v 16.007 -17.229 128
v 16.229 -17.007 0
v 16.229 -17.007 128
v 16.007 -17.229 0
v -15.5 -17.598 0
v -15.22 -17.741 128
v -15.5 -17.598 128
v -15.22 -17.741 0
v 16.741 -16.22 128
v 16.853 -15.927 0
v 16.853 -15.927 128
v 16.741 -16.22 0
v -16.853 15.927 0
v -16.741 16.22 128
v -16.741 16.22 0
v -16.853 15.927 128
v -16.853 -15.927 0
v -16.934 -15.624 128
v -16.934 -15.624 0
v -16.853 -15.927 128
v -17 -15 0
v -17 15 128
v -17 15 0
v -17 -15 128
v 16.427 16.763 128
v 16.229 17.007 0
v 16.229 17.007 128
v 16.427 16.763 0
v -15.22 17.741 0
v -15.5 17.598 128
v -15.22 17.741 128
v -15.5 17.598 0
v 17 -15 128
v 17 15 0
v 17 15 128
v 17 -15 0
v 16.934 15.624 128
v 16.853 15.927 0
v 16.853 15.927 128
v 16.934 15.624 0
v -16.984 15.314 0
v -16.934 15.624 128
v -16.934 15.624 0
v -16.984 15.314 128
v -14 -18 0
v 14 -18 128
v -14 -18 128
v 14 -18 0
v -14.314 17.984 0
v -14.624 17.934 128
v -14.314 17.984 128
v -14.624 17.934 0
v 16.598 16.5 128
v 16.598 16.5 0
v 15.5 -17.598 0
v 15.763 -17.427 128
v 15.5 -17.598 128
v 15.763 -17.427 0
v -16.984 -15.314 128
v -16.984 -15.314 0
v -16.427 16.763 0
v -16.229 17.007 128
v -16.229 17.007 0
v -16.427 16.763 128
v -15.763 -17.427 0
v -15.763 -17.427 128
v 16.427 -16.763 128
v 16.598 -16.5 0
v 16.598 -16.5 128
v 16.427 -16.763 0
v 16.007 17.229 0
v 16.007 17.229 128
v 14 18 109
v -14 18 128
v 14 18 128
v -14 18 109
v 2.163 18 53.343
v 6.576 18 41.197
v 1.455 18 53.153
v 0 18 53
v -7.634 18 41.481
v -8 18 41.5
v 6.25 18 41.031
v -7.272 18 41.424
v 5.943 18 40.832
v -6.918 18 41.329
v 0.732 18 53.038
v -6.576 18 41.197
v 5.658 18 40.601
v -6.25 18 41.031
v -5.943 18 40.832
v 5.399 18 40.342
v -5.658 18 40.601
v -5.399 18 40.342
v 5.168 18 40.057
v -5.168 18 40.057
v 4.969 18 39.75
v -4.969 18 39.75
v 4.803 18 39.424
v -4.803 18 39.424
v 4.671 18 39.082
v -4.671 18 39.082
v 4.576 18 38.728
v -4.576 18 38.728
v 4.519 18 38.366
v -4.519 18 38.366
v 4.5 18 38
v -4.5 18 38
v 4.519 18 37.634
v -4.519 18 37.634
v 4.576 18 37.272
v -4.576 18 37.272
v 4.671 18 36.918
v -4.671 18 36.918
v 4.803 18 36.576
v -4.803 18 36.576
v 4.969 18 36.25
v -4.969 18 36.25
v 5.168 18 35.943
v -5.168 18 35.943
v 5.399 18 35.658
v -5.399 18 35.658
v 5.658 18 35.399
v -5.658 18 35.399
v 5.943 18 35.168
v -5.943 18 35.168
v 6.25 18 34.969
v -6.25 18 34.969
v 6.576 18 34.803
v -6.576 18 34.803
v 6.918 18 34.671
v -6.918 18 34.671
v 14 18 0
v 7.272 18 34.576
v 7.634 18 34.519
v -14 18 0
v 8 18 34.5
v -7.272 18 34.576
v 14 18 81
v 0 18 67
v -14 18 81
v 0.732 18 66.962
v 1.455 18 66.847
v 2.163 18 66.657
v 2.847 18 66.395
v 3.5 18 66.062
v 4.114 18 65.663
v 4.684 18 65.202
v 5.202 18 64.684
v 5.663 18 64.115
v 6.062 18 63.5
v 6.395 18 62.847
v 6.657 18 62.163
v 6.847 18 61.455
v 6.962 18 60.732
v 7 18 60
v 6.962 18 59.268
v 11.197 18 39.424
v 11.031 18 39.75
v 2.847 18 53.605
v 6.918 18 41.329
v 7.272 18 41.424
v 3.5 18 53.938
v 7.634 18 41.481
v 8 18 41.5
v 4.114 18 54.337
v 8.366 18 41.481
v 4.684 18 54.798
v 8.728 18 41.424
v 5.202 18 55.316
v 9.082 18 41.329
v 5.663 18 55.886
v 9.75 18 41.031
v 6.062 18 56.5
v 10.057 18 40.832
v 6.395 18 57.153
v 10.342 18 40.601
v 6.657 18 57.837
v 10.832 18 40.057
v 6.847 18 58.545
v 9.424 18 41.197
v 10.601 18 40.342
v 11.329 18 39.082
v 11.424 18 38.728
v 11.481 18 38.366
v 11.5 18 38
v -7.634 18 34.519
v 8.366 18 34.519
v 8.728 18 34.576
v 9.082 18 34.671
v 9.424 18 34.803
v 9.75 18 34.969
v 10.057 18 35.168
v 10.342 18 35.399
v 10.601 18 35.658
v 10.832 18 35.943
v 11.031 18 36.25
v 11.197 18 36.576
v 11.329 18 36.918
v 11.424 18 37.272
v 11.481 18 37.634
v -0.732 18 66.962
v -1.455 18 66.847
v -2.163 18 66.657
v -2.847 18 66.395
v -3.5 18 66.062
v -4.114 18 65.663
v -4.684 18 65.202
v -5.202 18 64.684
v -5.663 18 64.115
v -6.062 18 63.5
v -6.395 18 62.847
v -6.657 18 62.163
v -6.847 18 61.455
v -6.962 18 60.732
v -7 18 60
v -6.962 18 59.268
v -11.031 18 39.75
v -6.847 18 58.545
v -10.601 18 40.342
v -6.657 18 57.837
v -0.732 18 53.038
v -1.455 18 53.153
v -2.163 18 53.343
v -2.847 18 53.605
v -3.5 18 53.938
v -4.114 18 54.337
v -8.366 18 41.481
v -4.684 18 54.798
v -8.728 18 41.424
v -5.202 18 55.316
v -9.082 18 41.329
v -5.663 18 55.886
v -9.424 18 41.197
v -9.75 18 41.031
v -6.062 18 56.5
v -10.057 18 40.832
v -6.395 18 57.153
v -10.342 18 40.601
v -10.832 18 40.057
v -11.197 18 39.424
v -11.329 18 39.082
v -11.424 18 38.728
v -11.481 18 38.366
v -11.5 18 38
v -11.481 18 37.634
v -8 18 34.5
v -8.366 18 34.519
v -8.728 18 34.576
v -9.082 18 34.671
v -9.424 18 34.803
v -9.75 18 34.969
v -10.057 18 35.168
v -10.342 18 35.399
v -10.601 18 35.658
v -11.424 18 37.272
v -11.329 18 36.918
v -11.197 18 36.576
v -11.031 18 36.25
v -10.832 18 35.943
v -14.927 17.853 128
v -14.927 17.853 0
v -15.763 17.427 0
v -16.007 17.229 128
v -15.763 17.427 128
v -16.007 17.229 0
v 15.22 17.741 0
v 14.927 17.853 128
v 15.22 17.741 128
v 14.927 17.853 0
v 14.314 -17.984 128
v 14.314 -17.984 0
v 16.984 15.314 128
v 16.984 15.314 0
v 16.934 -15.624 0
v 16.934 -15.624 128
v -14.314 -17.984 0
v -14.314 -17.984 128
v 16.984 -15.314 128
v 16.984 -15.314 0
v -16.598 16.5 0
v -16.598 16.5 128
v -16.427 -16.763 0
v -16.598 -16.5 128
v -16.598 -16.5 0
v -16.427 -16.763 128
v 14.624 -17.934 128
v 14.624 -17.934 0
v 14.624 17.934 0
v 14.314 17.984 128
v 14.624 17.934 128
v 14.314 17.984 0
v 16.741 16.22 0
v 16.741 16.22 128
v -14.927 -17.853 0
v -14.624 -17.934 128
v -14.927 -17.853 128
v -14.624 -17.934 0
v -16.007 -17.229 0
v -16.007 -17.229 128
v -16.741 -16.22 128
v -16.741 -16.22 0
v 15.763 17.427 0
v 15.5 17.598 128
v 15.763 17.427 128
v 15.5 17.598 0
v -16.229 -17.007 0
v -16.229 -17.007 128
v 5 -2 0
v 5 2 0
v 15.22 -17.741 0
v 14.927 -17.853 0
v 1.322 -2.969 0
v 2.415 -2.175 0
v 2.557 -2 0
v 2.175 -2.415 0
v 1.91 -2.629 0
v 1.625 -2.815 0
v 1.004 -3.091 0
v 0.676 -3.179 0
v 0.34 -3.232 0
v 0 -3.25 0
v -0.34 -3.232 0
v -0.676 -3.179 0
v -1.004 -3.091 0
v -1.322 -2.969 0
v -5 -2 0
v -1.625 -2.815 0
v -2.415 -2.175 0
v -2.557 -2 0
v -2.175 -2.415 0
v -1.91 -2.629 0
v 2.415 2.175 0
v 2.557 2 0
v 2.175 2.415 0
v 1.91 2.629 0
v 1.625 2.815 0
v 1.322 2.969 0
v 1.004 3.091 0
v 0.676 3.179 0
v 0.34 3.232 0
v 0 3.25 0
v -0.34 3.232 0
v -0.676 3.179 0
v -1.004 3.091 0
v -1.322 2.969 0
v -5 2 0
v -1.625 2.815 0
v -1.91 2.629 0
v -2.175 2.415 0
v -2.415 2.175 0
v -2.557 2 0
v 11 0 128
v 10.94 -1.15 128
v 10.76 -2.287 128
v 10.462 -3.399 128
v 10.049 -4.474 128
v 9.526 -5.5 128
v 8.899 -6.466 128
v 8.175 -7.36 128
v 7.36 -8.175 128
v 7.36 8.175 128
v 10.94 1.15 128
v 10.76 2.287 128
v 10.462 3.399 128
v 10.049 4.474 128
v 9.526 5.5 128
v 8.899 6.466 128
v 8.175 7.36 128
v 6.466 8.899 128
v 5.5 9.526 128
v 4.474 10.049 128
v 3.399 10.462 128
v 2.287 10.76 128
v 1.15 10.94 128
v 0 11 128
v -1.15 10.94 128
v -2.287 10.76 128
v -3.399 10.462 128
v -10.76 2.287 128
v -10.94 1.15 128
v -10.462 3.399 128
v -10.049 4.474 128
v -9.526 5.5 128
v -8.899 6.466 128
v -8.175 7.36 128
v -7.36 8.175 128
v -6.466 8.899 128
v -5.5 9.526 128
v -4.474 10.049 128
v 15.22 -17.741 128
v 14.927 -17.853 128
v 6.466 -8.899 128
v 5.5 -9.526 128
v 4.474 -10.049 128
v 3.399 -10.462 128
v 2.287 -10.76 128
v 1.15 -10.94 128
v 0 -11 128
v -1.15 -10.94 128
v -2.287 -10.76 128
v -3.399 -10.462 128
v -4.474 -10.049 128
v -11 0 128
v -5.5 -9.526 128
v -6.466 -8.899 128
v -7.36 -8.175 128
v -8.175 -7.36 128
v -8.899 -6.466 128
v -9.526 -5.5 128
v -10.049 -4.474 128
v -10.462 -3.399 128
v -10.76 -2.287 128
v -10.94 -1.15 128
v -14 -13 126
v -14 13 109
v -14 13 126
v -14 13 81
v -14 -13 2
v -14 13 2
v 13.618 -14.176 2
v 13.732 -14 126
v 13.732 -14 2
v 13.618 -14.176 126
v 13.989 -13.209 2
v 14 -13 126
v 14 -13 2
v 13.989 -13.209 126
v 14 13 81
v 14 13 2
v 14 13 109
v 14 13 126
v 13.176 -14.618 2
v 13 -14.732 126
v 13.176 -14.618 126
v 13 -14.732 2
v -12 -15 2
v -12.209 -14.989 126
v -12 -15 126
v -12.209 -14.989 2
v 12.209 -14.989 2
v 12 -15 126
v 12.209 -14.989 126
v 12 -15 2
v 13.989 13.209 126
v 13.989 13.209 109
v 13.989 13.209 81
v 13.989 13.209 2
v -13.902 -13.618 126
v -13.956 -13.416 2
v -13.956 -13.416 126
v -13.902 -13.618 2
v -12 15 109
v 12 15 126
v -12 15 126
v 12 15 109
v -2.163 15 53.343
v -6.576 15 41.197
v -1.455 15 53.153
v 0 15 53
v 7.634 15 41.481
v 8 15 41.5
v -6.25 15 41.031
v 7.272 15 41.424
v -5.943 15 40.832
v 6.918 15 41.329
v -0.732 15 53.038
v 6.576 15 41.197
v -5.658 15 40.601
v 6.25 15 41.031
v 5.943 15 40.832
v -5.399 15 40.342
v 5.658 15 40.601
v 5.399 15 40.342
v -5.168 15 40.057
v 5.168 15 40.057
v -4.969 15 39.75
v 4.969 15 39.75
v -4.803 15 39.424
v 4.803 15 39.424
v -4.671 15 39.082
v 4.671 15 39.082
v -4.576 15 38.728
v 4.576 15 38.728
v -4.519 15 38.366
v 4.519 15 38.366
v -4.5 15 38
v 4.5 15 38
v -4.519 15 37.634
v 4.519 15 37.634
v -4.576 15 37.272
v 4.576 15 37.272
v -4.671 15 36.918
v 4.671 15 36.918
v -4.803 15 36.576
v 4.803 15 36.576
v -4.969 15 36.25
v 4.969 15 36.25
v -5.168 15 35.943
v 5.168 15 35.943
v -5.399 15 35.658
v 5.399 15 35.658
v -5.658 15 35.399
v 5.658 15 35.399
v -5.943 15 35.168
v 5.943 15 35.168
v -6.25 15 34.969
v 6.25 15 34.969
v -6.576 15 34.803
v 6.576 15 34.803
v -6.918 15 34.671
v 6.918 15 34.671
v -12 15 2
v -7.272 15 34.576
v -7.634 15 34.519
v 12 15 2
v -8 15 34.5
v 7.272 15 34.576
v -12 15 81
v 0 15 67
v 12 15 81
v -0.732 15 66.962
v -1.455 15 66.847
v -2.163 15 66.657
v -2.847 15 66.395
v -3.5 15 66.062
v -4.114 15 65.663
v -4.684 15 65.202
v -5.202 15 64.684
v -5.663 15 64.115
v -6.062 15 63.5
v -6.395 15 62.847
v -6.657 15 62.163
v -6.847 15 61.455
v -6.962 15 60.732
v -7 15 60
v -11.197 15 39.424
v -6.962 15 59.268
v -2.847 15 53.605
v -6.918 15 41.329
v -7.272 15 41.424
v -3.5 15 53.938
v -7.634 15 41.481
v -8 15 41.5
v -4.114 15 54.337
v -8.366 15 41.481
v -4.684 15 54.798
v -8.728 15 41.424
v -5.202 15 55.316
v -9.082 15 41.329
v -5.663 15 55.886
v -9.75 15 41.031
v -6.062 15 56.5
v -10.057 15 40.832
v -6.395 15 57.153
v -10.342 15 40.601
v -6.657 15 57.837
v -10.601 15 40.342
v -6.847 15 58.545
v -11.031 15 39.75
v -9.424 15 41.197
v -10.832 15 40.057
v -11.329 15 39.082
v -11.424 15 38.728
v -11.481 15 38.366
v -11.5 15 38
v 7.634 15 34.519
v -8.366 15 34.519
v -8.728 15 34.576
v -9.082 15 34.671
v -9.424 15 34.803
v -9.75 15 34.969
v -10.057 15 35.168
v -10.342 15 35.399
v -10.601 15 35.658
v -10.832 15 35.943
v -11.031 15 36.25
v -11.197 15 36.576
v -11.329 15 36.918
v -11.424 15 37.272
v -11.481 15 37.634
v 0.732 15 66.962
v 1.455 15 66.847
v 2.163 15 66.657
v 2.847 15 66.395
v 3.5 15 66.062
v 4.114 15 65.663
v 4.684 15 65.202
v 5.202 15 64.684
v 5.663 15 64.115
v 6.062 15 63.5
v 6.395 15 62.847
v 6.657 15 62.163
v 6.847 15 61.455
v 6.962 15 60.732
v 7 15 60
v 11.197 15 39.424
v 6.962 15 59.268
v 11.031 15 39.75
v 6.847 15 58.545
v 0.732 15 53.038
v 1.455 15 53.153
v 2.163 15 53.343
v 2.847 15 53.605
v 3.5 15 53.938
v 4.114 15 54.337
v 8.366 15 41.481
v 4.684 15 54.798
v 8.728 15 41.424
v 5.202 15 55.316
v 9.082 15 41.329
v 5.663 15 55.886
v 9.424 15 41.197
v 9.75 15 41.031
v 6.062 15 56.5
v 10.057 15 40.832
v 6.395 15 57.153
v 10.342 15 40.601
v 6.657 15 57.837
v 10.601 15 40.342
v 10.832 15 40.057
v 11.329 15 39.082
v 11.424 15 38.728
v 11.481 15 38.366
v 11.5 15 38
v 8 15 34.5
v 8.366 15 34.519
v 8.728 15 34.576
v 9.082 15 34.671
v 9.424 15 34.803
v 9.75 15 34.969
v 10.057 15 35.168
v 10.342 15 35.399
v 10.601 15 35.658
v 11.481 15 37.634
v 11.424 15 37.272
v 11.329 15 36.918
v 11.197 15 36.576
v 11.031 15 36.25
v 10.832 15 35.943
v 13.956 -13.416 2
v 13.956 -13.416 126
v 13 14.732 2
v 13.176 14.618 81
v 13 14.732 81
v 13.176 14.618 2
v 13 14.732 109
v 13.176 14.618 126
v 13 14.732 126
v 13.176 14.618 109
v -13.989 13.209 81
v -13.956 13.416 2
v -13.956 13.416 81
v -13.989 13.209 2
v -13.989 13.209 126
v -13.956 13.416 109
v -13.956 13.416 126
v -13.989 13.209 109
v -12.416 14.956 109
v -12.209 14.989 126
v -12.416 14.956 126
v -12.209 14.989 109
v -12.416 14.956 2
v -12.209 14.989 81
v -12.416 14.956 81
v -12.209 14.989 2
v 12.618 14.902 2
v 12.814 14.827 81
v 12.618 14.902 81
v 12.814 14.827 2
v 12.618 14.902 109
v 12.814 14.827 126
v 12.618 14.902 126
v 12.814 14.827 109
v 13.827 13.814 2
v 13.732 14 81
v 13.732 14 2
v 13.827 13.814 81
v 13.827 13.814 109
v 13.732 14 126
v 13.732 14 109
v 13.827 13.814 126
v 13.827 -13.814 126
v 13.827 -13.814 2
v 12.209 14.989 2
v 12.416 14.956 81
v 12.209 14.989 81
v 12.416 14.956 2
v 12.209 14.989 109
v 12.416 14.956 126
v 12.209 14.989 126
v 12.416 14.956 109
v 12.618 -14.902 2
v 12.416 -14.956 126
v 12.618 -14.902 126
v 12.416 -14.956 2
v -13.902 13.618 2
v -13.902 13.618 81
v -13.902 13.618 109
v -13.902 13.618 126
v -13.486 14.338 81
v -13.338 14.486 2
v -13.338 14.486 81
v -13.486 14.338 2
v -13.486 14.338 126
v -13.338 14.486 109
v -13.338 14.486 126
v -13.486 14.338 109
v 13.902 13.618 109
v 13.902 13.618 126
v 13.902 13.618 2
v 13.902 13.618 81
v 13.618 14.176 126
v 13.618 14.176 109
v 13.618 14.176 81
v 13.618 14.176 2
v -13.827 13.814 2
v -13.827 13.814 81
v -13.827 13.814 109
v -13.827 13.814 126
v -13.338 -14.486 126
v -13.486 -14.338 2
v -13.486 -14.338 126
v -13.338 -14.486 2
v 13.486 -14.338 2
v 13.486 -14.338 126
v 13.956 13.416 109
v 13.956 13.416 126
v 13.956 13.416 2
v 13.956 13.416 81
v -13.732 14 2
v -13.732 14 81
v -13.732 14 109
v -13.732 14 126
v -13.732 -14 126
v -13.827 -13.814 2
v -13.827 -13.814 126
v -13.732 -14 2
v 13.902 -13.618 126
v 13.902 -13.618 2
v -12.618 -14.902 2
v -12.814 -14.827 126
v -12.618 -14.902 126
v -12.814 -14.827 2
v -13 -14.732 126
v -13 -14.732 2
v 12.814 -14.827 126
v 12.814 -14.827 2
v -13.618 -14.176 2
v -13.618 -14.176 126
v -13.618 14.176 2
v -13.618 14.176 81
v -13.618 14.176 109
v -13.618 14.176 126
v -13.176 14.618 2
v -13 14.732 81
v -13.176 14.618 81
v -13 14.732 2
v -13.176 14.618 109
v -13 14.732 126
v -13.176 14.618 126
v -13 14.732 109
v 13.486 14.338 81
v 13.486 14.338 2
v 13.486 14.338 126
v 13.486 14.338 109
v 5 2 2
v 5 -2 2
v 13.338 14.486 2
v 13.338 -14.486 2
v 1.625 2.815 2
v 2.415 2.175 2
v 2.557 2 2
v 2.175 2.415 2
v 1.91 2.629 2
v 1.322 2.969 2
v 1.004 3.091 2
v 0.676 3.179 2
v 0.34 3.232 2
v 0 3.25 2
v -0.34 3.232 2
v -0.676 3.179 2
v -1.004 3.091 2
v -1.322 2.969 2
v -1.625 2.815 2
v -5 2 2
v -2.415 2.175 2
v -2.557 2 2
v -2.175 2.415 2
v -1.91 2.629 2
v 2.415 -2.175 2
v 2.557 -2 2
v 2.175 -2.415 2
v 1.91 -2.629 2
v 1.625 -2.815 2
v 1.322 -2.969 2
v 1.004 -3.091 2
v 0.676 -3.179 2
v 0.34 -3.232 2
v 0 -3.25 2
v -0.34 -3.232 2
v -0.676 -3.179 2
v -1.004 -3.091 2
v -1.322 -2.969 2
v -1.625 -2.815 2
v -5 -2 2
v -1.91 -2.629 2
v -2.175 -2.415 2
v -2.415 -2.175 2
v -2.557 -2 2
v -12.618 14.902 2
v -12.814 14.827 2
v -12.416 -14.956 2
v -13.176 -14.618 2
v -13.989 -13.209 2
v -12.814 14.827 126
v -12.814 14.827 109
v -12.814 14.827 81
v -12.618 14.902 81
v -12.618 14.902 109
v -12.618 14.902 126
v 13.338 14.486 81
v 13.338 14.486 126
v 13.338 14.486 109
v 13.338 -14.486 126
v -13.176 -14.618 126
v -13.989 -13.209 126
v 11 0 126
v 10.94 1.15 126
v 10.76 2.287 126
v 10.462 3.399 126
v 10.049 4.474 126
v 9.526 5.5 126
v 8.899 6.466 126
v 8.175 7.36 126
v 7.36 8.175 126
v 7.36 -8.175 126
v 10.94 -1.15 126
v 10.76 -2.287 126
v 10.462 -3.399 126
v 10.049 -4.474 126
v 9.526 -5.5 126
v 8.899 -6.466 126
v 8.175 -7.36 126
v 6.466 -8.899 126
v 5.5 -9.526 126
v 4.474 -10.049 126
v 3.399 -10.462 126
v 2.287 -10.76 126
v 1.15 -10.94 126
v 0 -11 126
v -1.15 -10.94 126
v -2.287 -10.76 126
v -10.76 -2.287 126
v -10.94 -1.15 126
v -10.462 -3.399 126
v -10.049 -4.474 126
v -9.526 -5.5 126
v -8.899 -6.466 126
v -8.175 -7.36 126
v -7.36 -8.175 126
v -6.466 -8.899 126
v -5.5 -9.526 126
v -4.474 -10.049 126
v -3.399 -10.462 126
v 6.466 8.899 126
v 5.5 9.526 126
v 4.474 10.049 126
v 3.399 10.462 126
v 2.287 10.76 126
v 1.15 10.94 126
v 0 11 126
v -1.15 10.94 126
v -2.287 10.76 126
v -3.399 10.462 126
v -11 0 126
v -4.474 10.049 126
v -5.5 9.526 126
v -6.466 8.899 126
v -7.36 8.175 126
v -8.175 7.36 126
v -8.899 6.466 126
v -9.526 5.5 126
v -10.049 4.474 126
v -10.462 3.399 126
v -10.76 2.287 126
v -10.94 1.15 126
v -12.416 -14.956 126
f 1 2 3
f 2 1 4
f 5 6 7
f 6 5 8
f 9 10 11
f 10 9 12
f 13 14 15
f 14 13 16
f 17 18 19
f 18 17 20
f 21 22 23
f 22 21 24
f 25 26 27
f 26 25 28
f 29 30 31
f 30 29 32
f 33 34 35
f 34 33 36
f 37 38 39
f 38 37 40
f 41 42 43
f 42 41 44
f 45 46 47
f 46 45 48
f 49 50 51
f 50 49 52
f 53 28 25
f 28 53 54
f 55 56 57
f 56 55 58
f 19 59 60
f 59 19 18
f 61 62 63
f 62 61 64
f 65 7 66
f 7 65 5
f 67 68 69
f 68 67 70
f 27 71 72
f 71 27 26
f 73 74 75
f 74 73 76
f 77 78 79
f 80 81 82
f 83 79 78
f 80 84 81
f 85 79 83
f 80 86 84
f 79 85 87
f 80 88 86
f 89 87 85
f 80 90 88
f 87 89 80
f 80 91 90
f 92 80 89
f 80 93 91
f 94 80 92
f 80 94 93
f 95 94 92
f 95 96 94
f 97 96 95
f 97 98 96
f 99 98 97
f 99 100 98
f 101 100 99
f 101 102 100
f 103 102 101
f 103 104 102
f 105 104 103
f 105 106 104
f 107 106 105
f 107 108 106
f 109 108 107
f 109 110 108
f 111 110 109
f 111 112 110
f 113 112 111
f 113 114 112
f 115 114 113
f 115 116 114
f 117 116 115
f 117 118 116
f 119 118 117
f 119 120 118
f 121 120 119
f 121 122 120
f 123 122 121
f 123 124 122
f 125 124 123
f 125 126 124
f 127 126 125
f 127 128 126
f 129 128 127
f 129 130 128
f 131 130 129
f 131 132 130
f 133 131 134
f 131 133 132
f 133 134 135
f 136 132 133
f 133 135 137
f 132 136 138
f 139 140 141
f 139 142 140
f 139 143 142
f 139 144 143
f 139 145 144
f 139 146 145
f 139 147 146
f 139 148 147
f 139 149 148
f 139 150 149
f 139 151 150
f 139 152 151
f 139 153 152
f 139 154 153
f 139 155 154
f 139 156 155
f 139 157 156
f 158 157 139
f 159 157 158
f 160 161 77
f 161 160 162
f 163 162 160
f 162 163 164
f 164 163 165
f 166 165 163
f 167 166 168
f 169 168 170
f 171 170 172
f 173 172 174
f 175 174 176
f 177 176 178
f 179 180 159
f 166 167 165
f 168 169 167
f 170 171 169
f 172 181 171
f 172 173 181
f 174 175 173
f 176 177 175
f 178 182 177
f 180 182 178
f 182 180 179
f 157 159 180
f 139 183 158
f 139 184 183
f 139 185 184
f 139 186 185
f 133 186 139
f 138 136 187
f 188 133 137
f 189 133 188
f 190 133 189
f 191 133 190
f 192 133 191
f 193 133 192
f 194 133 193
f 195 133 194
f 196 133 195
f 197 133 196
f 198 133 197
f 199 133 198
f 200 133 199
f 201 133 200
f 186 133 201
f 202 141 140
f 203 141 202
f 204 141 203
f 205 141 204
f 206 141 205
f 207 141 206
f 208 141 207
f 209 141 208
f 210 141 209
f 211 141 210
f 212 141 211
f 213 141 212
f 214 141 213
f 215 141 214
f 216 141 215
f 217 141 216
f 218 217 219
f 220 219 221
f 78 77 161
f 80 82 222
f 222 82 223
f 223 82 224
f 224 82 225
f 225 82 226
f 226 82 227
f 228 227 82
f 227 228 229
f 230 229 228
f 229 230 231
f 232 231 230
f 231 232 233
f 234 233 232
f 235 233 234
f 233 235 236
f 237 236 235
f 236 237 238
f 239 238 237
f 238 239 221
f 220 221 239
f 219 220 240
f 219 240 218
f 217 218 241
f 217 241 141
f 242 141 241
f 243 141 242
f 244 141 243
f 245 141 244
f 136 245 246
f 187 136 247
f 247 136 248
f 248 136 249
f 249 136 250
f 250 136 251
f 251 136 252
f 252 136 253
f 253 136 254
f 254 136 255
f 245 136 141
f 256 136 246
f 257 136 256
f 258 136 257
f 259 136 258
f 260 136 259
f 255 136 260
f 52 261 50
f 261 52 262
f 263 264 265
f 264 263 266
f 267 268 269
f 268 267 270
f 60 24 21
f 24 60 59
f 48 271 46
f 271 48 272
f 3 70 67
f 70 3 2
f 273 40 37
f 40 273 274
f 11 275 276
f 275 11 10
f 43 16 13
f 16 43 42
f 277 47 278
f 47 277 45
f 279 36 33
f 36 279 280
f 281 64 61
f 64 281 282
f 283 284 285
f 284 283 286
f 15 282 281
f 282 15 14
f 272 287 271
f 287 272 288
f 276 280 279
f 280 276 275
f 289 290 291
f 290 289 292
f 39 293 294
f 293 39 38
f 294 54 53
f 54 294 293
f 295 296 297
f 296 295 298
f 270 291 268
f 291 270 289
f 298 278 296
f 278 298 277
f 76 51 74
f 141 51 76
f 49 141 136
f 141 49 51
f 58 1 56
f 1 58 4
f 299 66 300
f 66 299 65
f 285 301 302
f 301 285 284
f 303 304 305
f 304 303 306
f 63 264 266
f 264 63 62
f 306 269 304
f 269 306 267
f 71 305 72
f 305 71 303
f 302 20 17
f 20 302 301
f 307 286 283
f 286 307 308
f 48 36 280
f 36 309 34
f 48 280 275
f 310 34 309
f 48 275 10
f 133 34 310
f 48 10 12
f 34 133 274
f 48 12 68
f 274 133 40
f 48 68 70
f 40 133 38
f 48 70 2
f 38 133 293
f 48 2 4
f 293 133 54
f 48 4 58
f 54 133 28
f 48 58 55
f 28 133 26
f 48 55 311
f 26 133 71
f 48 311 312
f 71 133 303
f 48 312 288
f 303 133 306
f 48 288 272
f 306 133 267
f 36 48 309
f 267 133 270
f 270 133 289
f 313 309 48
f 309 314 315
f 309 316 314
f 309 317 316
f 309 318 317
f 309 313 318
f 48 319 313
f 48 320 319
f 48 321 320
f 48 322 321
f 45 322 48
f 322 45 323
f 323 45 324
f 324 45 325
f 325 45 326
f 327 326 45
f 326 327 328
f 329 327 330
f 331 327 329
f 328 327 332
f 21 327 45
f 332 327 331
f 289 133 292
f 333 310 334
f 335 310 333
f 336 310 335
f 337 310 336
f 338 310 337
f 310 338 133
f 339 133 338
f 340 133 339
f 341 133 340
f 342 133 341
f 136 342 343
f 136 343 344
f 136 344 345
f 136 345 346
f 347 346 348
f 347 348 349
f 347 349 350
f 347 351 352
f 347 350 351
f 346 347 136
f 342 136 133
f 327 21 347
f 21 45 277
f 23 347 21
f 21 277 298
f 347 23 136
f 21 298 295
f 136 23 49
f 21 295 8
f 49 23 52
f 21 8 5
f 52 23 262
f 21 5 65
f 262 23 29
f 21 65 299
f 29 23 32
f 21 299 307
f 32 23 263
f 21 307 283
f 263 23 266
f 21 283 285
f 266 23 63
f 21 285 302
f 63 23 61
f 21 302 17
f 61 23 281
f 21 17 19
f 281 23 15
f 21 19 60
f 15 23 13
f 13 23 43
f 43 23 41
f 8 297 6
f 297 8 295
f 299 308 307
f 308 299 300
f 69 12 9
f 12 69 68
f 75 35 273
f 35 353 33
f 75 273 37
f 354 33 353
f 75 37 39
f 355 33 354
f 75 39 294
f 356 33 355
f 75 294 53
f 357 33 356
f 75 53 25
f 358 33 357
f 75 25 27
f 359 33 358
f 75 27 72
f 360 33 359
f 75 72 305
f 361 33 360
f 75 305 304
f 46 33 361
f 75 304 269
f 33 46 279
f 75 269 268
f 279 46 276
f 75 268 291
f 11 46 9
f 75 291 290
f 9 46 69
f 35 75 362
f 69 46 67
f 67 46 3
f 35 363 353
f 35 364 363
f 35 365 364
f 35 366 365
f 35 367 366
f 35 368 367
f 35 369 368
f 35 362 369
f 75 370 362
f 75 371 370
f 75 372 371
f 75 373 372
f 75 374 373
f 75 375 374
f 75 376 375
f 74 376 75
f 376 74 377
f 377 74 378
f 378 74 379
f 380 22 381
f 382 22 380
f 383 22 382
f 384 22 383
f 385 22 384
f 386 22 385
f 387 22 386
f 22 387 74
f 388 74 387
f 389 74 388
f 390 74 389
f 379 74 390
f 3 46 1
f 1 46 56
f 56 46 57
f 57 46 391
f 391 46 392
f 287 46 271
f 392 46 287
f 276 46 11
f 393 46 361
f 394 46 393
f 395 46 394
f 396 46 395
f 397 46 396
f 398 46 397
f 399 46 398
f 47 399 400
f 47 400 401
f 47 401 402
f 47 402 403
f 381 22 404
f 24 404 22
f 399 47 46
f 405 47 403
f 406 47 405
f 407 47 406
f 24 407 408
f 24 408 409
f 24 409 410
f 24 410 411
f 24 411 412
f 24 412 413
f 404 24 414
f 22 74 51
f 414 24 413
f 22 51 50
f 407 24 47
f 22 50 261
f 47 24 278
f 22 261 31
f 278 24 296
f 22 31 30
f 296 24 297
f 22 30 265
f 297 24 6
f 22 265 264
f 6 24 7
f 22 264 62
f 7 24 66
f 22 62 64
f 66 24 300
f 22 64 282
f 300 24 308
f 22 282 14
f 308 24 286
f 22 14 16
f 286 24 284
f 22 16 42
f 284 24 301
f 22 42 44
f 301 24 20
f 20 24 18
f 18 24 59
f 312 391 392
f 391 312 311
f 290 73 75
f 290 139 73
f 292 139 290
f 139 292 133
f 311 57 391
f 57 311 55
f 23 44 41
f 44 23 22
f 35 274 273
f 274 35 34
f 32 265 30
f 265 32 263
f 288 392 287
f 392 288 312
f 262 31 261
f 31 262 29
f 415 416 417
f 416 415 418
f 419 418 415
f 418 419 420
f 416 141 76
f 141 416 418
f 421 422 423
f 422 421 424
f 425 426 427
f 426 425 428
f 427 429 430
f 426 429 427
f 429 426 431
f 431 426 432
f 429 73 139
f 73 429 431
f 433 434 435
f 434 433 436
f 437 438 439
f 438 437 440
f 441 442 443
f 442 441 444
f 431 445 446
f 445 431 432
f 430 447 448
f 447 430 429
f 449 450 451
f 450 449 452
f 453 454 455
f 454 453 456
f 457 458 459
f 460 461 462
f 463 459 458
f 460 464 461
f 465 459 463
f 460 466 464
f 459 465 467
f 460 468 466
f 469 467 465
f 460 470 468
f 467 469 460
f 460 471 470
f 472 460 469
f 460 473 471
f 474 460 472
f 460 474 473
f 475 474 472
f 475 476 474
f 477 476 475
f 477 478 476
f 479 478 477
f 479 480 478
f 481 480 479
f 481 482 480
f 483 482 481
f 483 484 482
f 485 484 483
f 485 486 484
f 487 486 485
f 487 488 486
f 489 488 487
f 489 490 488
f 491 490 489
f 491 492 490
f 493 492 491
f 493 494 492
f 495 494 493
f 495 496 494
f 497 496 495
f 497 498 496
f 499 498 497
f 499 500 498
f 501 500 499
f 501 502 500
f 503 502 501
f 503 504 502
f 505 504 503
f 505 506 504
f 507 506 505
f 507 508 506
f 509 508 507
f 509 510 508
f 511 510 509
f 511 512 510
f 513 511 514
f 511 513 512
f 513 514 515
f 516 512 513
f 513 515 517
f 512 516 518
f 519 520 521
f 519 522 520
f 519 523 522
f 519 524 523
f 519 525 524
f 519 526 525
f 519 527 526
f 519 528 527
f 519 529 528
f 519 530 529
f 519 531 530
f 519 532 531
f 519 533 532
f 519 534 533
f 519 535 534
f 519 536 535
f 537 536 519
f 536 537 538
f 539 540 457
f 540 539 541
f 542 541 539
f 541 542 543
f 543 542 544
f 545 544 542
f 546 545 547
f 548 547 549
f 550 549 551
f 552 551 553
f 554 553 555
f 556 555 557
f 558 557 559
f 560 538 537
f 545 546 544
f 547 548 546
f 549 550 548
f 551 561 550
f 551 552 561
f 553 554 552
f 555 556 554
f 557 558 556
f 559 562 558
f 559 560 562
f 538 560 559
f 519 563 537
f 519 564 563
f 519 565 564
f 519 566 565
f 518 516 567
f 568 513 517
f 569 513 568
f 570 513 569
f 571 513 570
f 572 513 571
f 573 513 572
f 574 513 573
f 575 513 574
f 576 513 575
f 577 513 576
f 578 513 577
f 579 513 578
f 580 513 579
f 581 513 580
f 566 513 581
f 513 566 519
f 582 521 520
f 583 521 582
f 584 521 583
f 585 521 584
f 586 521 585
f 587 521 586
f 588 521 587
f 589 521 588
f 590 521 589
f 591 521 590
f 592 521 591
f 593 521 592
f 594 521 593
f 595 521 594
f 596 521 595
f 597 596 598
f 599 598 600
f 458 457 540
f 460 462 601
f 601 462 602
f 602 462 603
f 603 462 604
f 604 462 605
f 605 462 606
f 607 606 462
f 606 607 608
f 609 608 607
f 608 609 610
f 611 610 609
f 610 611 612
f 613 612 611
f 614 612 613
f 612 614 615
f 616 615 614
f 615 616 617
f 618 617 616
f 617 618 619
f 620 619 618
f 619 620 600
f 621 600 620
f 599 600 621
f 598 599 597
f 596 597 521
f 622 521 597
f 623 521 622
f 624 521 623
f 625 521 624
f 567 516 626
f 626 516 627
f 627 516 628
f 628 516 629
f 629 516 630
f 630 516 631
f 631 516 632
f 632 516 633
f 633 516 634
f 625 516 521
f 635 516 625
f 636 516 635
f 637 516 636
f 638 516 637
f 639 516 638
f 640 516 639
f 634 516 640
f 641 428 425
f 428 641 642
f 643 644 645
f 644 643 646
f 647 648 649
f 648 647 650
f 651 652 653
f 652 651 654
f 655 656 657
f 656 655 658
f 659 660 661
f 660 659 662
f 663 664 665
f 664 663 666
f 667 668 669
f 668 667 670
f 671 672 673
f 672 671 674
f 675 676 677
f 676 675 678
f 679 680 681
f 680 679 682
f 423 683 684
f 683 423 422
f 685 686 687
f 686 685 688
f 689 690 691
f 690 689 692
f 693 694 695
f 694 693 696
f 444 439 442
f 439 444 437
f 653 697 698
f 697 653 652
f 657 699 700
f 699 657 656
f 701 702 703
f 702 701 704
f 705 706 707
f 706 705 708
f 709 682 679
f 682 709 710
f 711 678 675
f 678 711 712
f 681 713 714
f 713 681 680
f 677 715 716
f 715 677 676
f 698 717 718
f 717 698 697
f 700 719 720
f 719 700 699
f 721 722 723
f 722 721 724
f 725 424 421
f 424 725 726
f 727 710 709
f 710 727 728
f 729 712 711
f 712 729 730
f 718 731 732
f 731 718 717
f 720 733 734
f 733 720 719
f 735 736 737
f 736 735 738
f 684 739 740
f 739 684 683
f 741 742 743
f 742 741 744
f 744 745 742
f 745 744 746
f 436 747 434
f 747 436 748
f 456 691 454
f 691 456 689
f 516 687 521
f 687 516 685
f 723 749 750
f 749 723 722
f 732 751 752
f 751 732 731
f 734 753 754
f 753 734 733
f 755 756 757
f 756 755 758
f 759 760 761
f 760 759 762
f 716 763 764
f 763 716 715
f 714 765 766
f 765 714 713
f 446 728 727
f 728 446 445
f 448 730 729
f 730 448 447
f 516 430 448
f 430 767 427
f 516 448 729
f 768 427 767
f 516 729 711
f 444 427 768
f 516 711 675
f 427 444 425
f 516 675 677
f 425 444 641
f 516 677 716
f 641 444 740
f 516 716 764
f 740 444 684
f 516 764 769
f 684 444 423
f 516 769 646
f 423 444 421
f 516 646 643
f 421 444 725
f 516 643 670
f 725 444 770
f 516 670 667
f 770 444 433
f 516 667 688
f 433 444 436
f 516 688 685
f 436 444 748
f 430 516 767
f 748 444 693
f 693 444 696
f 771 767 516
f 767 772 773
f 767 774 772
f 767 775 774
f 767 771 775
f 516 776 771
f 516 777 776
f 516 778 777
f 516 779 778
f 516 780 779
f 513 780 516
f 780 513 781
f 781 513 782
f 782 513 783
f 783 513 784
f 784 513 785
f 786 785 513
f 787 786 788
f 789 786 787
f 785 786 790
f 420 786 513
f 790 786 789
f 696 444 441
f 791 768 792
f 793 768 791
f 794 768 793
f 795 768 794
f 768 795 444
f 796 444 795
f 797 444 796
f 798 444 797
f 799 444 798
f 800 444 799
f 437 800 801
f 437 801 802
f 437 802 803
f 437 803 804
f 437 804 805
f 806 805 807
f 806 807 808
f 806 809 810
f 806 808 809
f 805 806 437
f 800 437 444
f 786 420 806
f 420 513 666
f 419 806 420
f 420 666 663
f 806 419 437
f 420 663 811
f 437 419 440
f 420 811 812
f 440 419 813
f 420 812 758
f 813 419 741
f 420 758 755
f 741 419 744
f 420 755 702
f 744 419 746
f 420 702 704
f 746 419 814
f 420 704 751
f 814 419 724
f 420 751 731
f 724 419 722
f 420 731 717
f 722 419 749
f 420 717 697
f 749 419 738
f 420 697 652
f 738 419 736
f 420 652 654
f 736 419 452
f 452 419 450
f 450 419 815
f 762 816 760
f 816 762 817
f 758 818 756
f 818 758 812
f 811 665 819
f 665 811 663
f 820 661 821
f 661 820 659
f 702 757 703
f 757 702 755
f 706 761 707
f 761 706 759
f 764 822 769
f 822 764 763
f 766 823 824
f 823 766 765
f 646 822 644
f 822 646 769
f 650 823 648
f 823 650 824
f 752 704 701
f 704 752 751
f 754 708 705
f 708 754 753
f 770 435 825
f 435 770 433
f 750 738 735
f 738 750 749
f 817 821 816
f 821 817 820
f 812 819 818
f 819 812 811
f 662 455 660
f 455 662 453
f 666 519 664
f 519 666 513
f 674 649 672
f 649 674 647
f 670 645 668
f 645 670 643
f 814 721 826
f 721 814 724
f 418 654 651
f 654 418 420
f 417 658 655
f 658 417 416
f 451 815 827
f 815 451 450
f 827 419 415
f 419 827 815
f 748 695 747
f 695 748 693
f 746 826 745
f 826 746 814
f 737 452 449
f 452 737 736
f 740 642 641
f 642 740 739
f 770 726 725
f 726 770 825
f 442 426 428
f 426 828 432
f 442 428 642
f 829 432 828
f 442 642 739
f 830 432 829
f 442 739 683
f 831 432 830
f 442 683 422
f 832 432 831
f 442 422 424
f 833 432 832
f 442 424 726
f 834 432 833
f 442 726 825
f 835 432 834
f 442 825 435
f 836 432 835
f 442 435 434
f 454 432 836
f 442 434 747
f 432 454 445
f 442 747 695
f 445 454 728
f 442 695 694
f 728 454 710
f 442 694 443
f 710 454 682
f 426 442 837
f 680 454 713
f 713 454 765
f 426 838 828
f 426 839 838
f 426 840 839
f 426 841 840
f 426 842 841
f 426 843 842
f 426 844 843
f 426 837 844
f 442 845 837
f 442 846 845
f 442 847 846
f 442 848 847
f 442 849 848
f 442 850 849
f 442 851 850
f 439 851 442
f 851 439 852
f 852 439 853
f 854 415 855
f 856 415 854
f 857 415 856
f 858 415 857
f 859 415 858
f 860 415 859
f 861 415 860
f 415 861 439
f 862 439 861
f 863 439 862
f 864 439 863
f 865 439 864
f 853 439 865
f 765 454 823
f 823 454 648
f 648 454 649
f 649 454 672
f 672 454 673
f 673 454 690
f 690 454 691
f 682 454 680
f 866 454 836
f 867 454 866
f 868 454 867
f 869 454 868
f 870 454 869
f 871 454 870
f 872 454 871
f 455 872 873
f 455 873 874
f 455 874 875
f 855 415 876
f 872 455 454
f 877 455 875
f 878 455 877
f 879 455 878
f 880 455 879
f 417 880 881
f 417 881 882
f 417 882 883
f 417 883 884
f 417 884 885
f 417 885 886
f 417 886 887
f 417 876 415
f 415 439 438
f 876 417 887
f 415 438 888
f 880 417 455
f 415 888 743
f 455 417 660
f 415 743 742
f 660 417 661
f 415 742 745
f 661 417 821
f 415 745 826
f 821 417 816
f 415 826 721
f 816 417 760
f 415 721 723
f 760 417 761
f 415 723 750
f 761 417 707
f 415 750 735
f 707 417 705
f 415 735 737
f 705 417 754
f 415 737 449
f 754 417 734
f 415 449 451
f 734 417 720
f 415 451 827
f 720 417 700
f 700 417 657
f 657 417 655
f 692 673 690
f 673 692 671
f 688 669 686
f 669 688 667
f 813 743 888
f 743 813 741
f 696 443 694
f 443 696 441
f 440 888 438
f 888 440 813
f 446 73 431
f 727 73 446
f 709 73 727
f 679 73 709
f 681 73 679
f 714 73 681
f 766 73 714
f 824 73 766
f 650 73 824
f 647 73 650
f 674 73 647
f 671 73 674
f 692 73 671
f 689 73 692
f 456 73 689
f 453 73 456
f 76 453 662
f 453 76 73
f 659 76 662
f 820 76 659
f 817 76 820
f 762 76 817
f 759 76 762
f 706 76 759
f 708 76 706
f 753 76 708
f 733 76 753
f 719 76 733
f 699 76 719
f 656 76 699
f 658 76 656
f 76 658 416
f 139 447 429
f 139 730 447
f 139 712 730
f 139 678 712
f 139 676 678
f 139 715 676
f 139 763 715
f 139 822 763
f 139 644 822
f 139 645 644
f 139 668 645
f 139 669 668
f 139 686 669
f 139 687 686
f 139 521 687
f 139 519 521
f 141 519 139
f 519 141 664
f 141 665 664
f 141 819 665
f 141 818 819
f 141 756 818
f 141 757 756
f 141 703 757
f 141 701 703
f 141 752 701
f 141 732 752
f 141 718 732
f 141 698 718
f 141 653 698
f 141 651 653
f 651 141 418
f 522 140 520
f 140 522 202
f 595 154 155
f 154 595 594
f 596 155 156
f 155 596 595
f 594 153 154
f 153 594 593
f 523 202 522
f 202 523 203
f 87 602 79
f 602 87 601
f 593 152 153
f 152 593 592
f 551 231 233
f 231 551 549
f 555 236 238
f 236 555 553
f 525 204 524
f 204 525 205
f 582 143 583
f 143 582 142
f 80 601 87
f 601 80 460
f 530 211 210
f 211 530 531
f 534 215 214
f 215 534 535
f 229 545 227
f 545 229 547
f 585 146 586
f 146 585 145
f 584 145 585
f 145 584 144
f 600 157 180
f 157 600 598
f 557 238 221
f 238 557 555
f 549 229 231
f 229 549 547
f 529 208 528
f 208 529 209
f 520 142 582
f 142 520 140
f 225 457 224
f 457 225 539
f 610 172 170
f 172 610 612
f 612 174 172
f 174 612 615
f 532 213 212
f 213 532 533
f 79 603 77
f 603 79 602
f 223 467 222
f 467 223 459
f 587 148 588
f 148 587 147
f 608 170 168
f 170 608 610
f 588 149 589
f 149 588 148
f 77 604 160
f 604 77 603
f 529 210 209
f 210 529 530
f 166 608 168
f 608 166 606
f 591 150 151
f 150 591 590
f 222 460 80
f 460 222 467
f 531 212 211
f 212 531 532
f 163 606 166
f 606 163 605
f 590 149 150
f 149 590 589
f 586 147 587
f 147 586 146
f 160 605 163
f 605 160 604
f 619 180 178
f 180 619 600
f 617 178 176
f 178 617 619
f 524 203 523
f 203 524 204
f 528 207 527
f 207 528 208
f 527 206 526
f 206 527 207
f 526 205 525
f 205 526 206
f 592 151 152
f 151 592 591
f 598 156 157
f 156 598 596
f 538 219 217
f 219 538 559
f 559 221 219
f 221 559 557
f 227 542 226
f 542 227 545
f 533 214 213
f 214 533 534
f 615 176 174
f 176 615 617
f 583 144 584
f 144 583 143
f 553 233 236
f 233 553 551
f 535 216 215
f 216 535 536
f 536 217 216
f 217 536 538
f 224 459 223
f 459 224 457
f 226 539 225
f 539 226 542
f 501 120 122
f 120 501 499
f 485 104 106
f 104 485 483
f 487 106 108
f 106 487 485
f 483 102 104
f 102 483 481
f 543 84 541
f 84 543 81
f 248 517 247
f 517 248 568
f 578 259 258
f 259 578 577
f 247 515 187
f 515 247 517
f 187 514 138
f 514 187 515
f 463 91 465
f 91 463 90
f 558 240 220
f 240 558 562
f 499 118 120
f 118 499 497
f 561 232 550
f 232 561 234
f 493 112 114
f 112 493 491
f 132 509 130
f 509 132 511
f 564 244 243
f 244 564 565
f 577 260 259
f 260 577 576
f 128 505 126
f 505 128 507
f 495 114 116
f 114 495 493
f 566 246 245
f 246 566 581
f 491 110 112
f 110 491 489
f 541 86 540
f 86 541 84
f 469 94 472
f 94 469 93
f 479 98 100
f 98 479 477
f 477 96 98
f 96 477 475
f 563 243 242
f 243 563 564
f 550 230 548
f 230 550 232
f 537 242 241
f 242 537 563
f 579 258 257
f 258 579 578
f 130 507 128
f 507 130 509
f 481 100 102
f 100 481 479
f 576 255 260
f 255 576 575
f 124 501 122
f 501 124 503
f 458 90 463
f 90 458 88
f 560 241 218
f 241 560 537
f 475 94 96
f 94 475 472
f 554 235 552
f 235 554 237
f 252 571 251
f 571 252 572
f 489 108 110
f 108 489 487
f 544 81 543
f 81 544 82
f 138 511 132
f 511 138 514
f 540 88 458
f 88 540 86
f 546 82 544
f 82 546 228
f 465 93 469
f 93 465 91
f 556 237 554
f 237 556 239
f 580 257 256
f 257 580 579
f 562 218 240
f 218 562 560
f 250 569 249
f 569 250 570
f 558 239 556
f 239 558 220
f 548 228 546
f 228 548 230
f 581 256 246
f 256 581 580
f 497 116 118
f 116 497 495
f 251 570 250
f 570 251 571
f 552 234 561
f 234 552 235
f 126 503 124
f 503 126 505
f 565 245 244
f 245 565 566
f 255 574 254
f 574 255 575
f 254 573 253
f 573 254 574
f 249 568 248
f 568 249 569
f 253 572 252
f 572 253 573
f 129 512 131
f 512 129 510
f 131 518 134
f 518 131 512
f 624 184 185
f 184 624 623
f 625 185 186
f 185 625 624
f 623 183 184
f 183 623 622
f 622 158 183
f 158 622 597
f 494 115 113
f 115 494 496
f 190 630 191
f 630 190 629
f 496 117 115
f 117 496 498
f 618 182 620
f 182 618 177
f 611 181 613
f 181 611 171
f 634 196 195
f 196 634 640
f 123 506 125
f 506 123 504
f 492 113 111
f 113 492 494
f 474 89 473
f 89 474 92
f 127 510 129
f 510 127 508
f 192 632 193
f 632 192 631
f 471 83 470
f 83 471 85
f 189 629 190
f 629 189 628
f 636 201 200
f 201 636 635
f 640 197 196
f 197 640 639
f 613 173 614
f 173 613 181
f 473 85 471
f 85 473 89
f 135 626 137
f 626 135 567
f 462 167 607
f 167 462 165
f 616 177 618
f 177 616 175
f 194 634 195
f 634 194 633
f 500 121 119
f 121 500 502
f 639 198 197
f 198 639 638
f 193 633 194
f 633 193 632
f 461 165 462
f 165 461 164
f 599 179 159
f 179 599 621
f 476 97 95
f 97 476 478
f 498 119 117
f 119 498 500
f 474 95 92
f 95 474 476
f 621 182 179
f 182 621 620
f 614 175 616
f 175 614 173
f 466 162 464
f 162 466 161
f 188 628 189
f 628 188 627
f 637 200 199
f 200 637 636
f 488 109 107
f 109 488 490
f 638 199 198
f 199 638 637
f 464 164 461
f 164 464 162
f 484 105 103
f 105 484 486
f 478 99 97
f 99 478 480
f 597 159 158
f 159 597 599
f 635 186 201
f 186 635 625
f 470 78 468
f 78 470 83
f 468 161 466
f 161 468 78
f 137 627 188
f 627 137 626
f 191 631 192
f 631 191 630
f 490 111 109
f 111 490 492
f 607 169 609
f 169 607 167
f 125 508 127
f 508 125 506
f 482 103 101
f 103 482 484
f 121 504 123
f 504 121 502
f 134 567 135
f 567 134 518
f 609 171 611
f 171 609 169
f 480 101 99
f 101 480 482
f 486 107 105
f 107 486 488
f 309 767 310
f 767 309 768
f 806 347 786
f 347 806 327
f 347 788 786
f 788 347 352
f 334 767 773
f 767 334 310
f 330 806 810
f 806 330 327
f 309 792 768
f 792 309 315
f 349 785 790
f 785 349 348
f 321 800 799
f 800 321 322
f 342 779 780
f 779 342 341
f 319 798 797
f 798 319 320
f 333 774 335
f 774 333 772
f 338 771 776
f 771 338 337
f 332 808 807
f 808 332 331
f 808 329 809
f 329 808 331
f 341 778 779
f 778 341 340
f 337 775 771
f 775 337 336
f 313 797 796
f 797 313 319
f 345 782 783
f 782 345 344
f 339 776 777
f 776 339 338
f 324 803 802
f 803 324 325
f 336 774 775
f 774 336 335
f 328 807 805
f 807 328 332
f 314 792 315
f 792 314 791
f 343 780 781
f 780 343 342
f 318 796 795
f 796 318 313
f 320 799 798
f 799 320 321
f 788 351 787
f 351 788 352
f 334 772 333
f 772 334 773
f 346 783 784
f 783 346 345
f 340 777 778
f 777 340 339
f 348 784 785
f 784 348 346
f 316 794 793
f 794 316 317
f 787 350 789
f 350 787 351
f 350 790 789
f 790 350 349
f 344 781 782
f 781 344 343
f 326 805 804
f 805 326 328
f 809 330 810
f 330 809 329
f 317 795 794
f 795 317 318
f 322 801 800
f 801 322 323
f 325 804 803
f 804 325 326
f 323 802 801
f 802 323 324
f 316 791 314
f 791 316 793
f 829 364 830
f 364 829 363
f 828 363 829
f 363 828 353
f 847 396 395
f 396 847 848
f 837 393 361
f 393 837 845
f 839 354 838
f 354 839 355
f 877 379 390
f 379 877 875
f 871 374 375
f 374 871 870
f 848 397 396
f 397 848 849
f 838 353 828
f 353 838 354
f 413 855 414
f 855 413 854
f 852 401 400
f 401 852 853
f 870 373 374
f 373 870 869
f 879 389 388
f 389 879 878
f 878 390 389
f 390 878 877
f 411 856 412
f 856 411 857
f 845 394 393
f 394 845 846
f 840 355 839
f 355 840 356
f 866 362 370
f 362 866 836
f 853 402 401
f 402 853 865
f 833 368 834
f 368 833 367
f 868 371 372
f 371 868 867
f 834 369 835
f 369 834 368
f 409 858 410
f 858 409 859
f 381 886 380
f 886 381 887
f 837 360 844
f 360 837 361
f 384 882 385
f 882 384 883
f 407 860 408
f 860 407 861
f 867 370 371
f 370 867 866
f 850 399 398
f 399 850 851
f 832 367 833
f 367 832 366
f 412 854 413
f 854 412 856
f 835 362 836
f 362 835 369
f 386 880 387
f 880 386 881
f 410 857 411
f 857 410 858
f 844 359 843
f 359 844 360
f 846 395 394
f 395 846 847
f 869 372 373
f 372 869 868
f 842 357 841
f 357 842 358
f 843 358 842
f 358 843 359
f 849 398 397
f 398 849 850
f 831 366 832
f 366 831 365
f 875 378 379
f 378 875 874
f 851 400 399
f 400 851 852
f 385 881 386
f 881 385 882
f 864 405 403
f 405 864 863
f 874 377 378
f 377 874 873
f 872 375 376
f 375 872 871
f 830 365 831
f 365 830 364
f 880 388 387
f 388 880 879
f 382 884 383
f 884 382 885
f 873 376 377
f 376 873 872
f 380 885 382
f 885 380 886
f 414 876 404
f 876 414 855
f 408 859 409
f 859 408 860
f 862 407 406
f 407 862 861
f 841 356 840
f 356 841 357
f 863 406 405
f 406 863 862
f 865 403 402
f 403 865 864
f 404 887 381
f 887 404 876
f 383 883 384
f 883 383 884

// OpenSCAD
// DJI Osmo Pocket Style Ergonomic Handle Housing
// Holds ESP32-S3 mainboard, 2S 18350 Li-ion battery, 1.3" OLED, thumbstick, and bottom USB-C
$fn = 60;

module handle_body() {
    difference() {
        // Outer ergonomic rounded casing (32mm x 35mm x 128mm)
        hull() {
            translate([-14, -15, 0]) cylinder(r=3, h=128);
            translate([ 14, -15, 0]) cylinder(r=3, h=128);
            translate([ 14,  15, 0]) cylinder(r=3, h=128);
            translate([-14,  15, 0]) cylinder(r=3, h=128);
        }
        
        // Internal hollow cavity for battery, PCB, and wiring
        hull() {
            translate([-12, -13, 2]) cylinder(r=2, h=124);
            translate([ 12, -13, 2]) cylinder(r=2, h=124);
            translate([ 12,  13, 2]) cylinder(r=2, h=124);
            translate([-12,  13, 2]) cylinder(r=2, h=124);
        }
        
        // Front 1.3" OLED Display window (28mm x 28mm)
        translate([0, 16, 95]) cube([28, 6, 28], center=true);
        
        // Thumb Joystick aperture (14mm diameter)
        translate([0, 16, 60]) rotate([90, 0, 0]) cylinder(d=14, h=10, center=true);
        
        // Power and Record tactile buttons
        translate([-8, 16, 38]) rotate([90, 0, 0]) cylinder(d=7, h=10, center=true);
        translate([ 8, 16, 38]) rotate([90, 0, 0]) cylinder(d=7, h=10, center=true);
        
        // Bottom USB-C port cutout
        translate([0, 0, 0]) cube([10, 4, 10], center=true);
        
        // Bottom 1/4"-20 tripod thread insert socket
        translate([0, 0, 4]) cylinder(d=6.5, h=10, center=true);
        
        // Top Pan Motor mounting boss aperture
        translate([0, 0, 126]) cylinder(d=22, h=10, center=true);
    }
}

handle_body();
